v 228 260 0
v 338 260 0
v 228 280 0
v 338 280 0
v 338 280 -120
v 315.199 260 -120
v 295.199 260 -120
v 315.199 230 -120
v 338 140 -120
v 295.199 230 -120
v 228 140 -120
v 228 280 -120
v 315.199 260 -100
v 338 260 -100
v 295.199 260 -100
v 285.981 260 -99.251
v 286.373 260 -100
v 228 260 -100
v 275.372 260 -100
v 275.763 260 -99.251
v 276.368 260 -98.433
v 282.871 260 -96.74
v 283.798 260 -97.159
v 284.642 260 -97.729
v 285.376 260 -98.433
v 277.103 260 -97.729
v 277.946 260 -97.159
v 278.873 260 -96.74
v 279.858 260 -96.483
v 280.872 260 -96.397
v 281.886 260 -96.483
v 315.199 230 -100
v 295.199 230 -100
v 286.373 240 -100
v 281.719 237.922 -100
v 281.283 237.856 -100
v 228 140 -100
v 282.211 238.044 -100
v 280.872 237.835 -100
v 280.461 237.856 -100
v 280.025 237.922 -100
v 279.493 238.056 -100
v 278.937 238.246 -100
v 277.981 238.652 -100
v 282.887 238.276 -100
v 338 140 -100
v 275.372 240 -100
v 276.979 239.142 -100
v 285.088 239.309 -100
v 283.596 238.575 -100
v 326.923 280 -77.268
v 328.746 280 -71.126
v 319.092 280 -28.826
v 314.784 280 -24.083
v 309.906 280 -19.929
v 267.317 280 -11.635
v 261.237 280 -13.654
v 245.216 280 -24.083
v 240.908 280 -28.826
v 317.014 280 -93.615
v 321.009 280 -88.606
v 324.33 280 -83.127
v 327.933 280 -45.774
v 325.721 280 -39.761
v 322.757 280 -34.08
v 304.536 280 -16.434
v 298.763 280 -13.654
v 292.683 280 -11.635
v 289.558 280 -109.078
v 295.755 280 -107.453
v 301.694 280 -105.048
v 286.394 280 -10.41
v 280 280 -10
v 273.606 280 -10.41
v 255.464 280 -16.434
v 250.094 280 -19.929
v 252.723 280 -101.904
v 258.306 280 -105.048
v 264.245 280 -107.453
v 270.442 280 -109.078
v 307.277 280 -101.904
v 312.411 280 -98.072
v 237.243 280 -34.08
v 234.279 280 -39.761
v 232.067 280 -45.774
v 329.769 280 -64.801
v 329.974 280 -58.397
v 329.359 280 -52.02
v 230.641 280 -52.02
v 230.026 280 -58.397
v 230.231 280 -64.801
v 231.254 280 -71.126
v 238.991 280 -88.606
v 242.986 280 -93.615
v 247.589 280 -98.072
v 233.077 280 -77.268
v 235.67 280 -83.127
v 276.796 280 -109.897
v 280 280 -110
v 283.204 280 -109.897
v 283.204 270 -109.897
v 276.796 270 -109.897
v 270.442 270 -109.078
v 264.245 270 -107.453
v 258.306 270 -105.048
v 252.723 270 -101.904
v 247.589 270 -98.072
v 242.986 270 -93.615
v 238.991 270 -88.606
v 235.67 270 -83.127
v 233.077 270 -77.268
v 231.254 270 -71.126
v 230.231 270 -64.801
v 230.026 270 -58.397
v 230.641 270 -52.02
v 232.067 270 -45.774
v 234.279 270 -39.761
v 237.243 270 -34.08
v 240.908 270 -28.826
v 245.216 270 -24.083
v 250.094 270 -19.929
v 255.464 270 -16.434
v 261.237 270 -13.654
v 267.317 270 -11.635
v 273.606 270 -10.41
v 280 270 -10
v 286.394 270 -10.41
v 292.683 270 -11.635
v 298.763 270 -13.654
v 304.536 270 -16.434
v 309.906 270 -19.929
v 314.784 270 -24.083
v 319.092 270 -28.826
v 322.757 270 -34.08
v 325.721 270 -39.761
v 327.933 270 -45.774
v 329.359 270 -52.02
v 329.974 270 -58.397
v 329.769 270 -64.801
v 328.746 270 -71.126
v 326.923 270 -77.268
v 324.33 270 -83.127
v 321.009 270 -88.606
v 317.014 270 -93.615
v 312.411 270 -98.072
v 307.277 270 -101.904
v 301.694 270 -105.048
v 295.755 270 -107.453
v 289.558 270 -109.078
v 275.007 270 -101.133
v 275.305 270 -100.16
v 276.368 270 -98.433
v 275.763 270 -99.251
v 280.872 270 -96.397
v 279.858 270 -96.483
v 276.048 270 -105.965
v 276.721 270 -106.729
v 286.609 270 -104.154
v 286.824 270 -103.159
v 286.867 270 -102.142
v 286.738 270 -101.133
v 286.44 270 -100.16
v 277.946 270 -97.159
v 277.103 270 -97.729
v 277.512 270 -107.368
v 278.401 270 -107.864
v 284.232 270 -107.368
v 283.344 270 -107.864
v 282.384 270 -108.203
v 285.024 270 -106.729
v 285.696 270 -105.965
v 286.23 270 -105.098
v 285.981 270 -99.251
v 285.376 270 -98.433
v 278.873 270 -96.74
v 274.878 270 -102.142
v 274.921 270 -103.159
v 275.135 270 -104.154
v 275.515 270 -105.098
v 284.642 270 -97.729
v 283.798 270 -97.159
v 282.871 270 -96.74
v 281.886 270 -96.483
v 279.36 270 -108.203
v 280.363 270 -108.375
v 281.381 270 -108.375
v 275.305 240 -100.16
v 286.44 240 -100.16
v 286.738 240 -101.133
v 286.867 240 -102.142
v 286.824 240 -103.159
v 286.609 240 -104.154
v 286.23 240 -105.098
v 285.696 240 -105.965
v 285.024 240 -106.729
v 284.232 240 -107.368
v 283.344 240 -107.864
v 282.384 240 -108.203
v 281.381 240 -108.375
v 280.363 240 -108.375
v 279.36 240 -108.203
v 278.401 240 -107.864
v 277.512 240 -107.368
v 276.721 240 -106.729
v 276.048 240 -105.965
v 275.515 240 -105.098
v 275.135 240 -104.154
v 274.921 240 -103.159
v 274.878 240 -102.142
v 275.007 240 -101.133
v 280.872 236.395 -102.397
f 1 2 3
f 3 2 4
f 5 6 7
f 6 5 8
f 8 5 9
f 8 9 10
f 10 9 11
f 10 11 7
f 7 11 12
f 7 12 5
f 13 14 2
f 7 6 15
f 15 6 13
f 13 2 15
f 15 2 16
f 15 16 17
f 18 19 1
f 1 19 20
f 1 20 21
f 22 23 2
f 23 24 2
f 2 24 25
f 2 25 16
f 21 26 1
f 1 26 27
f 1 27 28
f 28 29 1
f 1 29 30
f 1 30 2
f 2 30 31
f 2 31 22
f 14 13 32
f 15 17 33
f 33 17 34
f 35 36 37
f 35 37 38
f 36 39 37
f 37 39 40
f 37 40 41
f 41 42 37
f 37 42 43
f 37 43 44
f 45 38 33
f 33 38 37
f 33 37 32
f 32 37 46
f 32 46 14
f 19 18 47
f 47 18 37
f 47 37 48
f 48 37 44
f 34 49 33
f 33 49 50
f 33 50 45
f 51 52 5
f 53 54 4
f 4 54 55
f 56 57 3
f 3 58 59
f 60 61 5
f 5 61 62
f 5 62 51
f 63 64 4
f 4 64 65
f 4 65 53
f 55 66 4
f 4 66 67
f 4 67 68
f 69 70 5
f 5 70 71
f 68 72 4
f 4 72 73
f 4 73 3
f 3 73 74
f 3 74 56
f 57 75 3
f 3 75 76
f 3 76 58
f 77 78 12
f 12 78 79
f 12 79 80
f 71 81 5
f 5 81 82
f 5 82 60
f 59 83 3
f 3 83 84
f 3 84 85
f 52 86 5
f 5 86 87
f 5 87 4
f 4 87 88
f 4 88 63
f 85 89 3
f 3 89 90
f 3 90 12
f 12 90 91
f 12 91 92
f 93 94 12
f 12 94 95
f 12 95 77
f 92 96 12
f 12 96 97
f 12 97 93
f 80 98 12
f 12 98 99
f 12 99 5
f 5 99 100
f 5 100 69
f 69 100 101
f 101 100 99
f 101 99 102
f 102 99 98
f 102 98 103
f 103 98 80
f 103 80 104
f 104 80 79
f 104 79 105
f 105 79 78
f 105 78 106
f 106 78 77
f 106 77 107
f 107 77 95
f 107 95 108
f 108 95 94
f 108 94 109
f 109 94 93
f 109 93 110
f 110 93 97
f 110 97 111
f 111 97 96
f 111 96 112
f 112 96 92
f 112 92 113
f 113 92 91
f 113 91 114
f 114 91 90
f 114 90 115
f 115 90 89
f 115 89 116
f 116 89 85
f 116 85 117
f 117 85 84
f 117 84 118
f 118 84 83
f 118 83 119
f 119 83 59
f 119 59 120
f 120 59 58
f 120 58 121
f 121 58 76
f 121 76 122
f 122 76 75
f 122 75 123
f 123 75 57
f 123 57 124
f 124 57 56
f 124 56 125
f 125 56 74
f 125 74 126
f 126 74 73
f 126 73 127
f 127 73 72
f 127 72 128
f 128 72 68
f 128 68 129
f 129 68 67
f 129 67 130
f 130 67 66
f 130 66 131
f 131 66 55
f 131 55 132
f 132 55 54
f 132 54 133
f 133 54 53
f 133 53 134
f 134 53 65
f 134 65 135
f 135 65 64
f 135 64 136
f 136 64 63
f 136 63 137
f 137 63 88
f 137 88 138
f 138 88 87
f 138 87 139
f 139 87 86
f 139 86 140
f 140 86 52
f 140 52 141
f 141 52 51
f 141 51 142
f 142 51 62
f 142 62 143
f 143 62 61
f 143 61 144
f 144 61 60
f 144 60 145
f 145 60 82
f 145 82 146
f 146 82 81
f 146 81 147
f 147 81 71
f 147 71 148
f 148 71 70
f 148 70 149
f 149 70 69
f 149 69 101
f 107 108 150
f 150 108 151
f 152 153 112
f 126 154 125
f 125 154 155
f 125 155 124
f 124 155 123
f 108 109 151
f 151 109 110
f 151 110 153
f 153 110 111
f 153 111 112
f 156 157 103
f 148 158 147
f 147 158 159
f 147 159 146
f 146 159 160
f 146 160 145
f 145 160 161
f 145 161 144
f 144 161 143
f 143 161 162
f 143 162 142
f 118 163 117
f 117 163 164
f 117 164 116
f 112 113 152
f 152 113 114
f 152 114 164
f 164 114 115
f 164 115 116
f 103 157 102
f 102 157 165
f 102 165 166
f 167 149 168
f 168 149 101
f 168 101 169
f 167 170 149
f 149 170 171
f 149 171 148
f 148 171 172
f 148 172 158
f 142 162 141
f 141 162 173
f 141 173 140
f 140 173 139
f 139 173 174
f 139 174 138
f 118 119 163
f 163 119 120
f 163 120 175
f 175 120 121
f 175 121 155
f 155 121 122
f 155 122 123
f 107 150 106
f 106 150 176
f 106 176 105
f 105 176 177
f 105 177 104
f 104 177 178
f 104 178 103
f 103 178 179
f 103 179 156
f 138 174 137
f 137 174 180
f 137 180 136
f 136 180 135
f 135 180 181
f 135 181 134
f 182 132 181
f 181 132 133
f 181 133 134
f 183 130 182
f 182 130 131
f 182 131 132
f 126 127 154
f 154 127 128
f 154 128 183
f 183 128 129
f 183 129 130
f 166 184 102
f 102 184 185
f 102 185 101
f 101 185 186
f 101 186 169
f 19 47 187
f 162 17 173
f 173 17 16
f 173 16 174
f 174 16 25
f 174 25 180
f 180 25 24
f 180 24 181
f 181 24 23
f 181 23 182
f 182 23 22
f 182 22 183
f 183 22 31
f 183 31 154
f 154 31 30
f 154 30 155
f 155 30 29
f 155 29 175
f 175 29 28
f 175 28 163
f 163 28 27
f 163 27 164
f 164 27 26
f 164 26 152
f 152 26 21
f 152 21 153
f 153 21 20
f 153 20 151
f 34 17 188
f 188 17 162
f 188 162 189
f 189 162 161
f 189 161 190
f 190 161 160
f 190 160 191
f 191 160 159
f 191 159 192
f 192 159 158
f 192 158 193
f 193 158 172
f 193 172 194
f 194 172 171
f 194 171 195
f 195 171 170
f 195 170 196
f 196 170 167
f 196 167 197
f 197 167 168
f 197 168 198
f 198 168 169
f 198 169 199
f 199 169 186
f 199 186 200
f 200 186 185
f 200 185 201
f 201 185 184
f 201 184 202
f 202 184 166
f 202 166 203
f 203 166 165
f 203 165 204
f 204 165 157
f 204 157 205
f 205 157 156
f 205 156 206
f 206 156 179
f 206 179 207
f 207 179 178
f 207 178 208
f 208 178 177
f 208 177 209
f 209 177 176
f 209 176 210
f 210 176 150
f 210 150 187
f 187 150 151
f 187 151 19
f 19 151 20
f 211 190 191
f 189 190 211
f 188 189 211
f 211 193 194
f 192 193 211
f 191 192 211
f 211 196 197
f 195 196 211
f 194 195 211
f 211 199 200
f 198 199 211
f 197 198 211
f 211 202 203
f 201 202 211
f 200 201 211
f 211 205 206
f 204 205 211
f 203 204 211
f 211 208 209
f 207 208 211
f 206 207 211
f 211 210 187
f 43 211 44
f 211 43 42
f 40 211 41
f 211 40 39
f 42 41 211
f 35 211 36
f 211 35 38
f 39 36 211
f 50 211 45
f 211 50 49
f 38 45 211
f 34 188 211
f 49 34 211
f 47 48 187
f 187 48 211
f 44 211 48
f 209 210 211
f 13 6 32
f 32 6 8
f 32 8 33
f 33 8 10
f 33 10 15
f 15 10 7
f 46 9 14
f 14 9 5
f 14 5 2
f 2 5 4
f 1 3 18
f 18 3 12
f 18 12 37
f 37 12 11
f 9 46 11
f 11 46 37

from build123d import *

# Parameters (mm, degrees)
SKETCH1_W                      = 670
SKETCH1_H                      = 120
BOSS_EXTRUDE1_DEPTH            = 530
SKETCH2_W                      = 100
SKETCH2_H                      = 200
SKETCH2_W_2                    = 650
SKETCH2_H_2                    = 250
CUT_EXTRUDE1_DEPTH             = 100
SKETCH3_R                      = 50
CUT_EXTRUDE2_DEPTH             = 260
F_12_0_12_DIAMETER_HOLE2_D     = 12
F_12_0_12_DIAMETER_HOLE2_DEPTH = 30
F_12_0_12_DIAMETER_HOLE2_TIP   = 3.605163714
SKETCH8_W                      = 650
SKETCH8_H                      = 50
BOSS_EXTRUDE2_DEPTH            = 5
SKETCH9_W                      = 10
SKETCH9_H                      = 250
CUT_EXTRUDE3_DEPTH             = 717
CUT_EXTRUDE4_DEPTH             = 5
SKETCH11_W                     = 10
SKETCH11_H                     = 100
BOSS_EXTRUDE3_DEPTH            = 78
BOSS_EXTRUDE3_2_DEPTH          = 78
BOSS_EXTRUDE3_3_DEPTH          = 78
SKETCH12_W                     = 20
SKETCH12_H                     = 30
CUT_EXTRUDE5_DEPTH             = 80
SKETCH15_W                     = 30
SKETCH15_H                     = 23.536156656
SKETCH15_H_2                   = 28.986603691
CUT_EXTRUDE7_DEPTH             = 35
SHELL1_T                       = -3
SKETCH16_W                     = 14
SKETCH16_H                     = 14
CUT_EXTRUDE8_DEPTH             = 35
SKETCH17_W                     = 5.729882812
SKETCH17_H                     = 17.428393554
SKETCH17_W_2                   = 13.369726562
SKETCH17_H_2                   = 3.342431641
BOSS_EXTRUDE4_DEPTH            = 5
CUT_EXTRUDE10_DEPTH            = 863.670273187
CUT_EXTRUDE10_DEPTH_BACK       = 863.670273187
SKETCH18_W                     = 670
SKETCH18_H                     = 250
CUT_EXTRUDE13_DEPTH            = 737.002717386
CUT_EXTRUDE13_DEPTH_BACK       = 737.002717386
SKETCH19_W                     = 228
SKETCH19_H                     = 280
SKETCH19_W_2                   = 332
CUT_EXTRUDE14_DEPTH            = 451.159971566
CUT_EXTRUDE14_DEPTH_BACK       = 451.159971566
SKETCH20_W                     = 110
SKETCH20_H                     = 140


with BuildPart() as part:
    # Sketch1 → Boss-Extrude1 (new body)
    with BuildSketch(Plane(origin=(0, 0, 0), x_dir=(1, 0, 0), z_dir=(0, 1, 0))):
        with Locations((335, 60)):
            Rectangle(SKETCH1_W, SKETCH1_H)
    extrude(amount=BOSS_EXTRUDE1_DEPTH)

    # Sketch2 → Cut-Extrude1 (cut)
    with BuildSketch(Plane.XY):
        with Locations((60, 380)):
            Rectangle(SKETCH2_W, SKETCH2_H)
        with Locations((170, 380)):
            Rectangle(SKETCH2_W, SKETCH2_H)
        with Locations((280, 380)):
            Rectangle(SKETCH2_W, SKETCH2_H)
        with Locations((390, 380)):
            Rectangle(SKETCH2_W, SKETCH2_H)
        with Locations((500, 380)):
            Rectangle(SKETCH2_W, SKETCH2_H)
        with Locations((610, 380)):
            Rectangle(SKETCH2_W, SKETCH2_H)
        with Locations((335, 135)):
            Rectangle(SKETCH2_W_2, SKETCH2_H_2)
    extrude(amount=-CUT_EXTRUDE1_DEPTH, mode=Mode.SUBTRACT)

    # Sketch3 → Cut-Extrude2 (cut)
    with BuildSketch(Plane(origin=(0, 530, 0), x_dir=(1, 0, 0), z_dir=(0, 1, 0))):
        with Locations((60, 60)):
            Circle(SKETCH3_R)
        with Locations((170, 60)):
            Circle(SKETCH3_R)
        with Locations((280, 60)):
            Circle(SKETCH3_R)
        with Locations((390, 60)):
            Circle(SKETCH3_R)
        with Locations((500, 60)):
            Circle(SKETCH3_R)
        with Locations((610, 60)):
            Circle(SKETCH3_R)
    extrude(amount=-CUT_EXTRUDE2_DEPTH, mode=Mode.SUBTRACT)

    # Ø12.0 (12) Diameter Hole2
    with Locations(Plane(origin=(59.704642413, 270, -102.411697903), x_dir=(0, 0, 1), z_dir=(0, 1, 0))):
        with Locations((0, 0), (-0.195888006, 111.8520513), (0.014838595, 221.167624818), (-0.341843303, 331.364008353), (0.657723149, 441.008646429), (1.288998006, 549.811854685)):
            Hole(F_12_0_12_DIAMETER_HOLE2_D / 2, depth=F_12_0_12_DIAMETER_HOLE2_DEPTH)
            with Locations((0, 0, -(F_12_0_12_DIAMETER_HOLE2_DEPTH + F_12_0_12_DIAMETER_HOLE2_TIP / 2))):  # 118° drill point
                Cone(0, F_12_0_12_DIAMETER_HOLE2_D / 2, F_12_0_12_DIAMETER_HOLE2_TIP, mode=Mode.SUBTRACT)

    # Sketch8 → Boss-Extrude2 (add)
    with BuildSketch(Plane.XY):
        with Locations((335, 305)):
            Rectangle(SKETCH8_W, SKETCH8_H)
    extrude(amount=-BOSS_EXTRUDE2_DEPTH)

    # Sketch9 → Cut-Extrude3 (cut)
    with BuildSketch(Plane(origin=(670, 0, 0), x_dir=(0, 0, -1), z_dir=(1, 0, 0))):
        with Locations((15, 135)):
            Rectangle(SKETCH9_W, SKETCH9_H)
    extrude(amount=-CUT_EXTRUDE3_DEPTH, mode=Mode.SUBTRACT)

    # Sketch10 → Cut-Extrude4 (cut)
    with BuildSketch(Plane(origin=(0, 10, 0), x_dir=(1, 0, 0), z_dir=(0, 1, 0))):
        Polygon((365, 61.943560596), (350, 87.924322709), (320, 87.924322709), (305, 61.943560596), (320, 35.962798482), (350, 35.962798482), align=None)
    extrude(amount=-CUT_EXTRUDE4_DEPTH, mode=Mode.SUBTRACT)

    # Sketch12 → Cut-Extrude5 (cut)
    with BuildSketch(Plane.XY.offset(-100)):
        with Locations((85.198613037, 245)):
            Rectangle(SKETCH12_W, SKETCH12_H)
        with Locations((195.198613037, 245)):
            Rectangle(SKETCH12_W, SKETCH12_H)
        with Locations((305.198613037, 245)):
            Rectangle(SKETCH12_W, SKETCH12_H)
        with Locations((415.198613037, 245)):
            Rectangle(SKETCH12_W, SKETCH12_H)
        with Locations((525.198613037, 245)):
            Rectangle(SKETCH12_W, SKETCH12_H)
        with Locations((635.198613037, 245)):
            Rectangle(SKETCH12_W, SKETCH12_H)
    extrude(amount=-CUT_EXTRUDE5_DEPTH, mode=Mode.SUBTRACT)

    # Sketch17 → Boss-Extrude4 (add)
    # profile 1 of 9: a face of its own
    with BuildSketch(Plane.XY):
        with BuildLine():
            Line((527.508830928, 289.835452458), (527.508830928, 307.263846012))
            Line((527.508830928, 307.263846012), (534.861434459, 307.263846012))
            add(Edge.make_bspline(
                [(534.861434459, 307.263846012), (535.181337774, 307.258256848), (535.803061116, 307.24739446), (536.703508491, 307.139069344), (537.544992916, 306.975202489), (538.325061607, 306.737496792), (539.040841948, 306.426020155), (539.698044515, 306.051894954), (540.290333057, 305.605079277), (540.822348212, 305.090232636), (541.284521701, 304.502523111), (541.692171296, 303.852565801), (542.030284458, 303.129762281), (542.309377095, 302.341316546), (542.5243908, 301.484161689), (542.679660381, 300.560045938), (542.773357357, 299.567500804), (542.783368073, 298.883107022), (542.788518428, 298.530997273)],
                knots=[0, 0, 0, 0, 1.135059408, 2.20595691, 3.214417064, 4.174978569, 5.094187092, 5.980001006, 6.853065862, 7.720814779, 8.600404634, 9.50058483, 10.438414914, 11.426825708, 12.465239141, 13.571113463, 14.750376389, 16, 16, 16, 16], degree=3))
            add(Edge.make_bspline(
                [(542.788518428, 298.530997273), (542.781740751, 298.180151665), (542.768592871, 297.499553336), (542.676885992, 296.511518461), (542.516733301, 295.591080531), (542.296748778, 294.736450427), (542.003051046, 293.953120444), (541.654236167, 293.233205539), (541.233025793, 292.585291498), (540.753136904, 292.000029304), (540.204772188, 291.484681411), (539.587651059, 291.044279297), (538.910779309, 290.668464036), (538.169670382, 290.361903209), (537.364073889, 290.124869172), (536.495133477, 289.954199984), (535.562644449, 289.853487388), (534.920131033, 289.841584621), (534.58911581, 289.835452458)],
                knots=[0, 0, 0, 0, 1.228418252, 2.382983832, 3.470276728, 4.496757894, 5.468023682, 6.394867725, 7.292157164, 8.167372942, 9.039072913, 9.918728341, 10.815246345, 11.744296628, 12.720973084, 13.750736166, 14.841206188, 16, 16, 16, 16], degree=3))
            Line((534.58911581, 289.835452458), (527.508830928, 289.835452458))
        make_face()
        with BuildLine():
            Line((533.238713741, 291.745413395), (534.048208904, 291.745413395))
            add(Edge.make_bspline(
                [(534.048208904, 291.745413395), (534.172894012, 291.749291978), (534.413033311, 291.756761998), (534.758676231, 291.825976613), (535.075745017, 291.938271137), (535.365749176, 292.094802589), (535.623404602, 292.300450923), (535.848862806, 292.551404902), (536.04776914, 292.844737637), (536.217685755, 293.190205032), (536.364284647, 293.596533622), (536.481764702, 294.076367921), (536.592118304, 294.630928744), (536.673672739, 295.265507643), (536.740044562, 295.978448886), (536.788346679, 296.768428292), (536.812018936, 297.636801208), (536.817188964, 298.241258393), (536.819890499, 298.55711002)],
                knots=[0, 0, 0, 0, 0.728710832, 1.403472396, 2.052289494, 2.690292559, 3.321919393, 3.970736491, 4.656696891, 5.388631723, 6.217040872, 7.17856157, 8.275589967, 9.523440737, 10.918935818, 12.463926104, 14.152268318, 16, 16, 16, 16], degree=3))
            add(Edge.make_bspline(
                [(536.819890499, 298.55711002), (536.8171426, 298.871715251), (536.811863063, 299.476166083), (536.7886758, 300.343334385), (536.739579947, 301.133216935), (536.674703848, 301.843934916), (536.589660404, 302.476324031), (536.488366458, 303.031681737), (536.362441588, 303.507627045), (536.222158727, 303.914921549), (536.050140993, 304.256514038), (535.858357073, 304.554097881), (535.62547107, 304.79746827), (535.36991257, 305.004888479), (535.079348843, 305.160875844), (534.761320266, 305.273944358), (534.414185903, 305.34216807), (534.172870641, 305.349893944), (534.048208904, 305.353885075)],
                knots=[0, 0, 0, 0, 1.842836665, 3.540640921, 5.080358154, 6.47765669, 7.719902824, 8.816971715, 9.781579111, 10.601733135, 11.334613876, 12.017393917, 12.666641099, 13.29908421, 13.937911793, 14.587567384, 15.270347425, 16, 16, 16, 16], degree=3))
            Line((534.048208904, 305.353885075), (533.238713741, 305.353885075))
            Line((533.238713741, 305.353885075), (533.238713741, 291.745413395))
        make_face(mode=Mode.SUBTRACT)
    # profile 2 of 9: a face of its own
    with BuildSketch(Plane.XY):
        with Locations((547.563420772, 298.549649235)):
            Rectangle(SKETCH17_W, SKETCH17_H)
    # profile 3 of 9: a face of its own
    with BuildSketch(Plane.XY):
        Polygon((564.514324092, 307.263846012), (564.514324092, 305.115139958), (558.545696163, 305.115139958), (558.545696163, 299.862747379), (563.559343624, 299.862747379), (563.559343624, 297.714041325), (558.545696163, 297.714041325), (558.545696163, 289.835452458), (552.81581335, 289.835452458), (552.81581335, 307.263846012), align=None)
    # profile 4 of 9: a face of its own
    with BuildSketch(Plane.XY):
        Polygon((577.645305538, 307.263846012), (577.645305538, 305.115139958), (571.676677608, 305.115139958), (571.676677608, 299.862747379), (576.690325069, 299.862747379), (576.690325069, 297.714041325), (571.676677608, 297.714041325), (571.676677608, 289.835452458), (565.946794795, 289.835452458), (565.946794795, 307.263846012), align=None)
    # profile 5 of 9: a face of its own
    with BuildSketch(Plane.XY):
        with Locations((584.330168819, 287.448001286)):
            Rectangle(SKETCH17_W_2, SKETCH17_H_2)
    # profile 6 of 9: a face of its own
    with BuildSketch(Plane.XY):
        with BuildLine():
            Line((605.578484249, 307.263846012), (605.578484249, 295.602639195))
            add(Edge.make_bspline(
                [(605.578484249, 295.602639195), (605.574209777, 295.35989389), (605.565919345, 294.889083964), (605.480877158, 294.20653885), (605.349958188, 293.569747554), (605.15926554, 292.978838165), (604.911867049, 292.436847071), (604.616163877, 291.936663973), (604.260702644, 291.487723021), (603.847299908, 291.08966617), (603.386881991, 290.731670113), (602.867295001, 290.425440037), (602.293741958, 290.168488385), (601.66690529, 289.960990771), (600.988052682, 289.797299786), (600.254912883, 289.679078851), (599.467035781, 289.60781007), (598.923618241, 289.60048219), (598.643684673, 289.59670734)],
                knots=[0, 0, 0, 0, 1.108173197, 2.149326602, 3.136215123, 4.073726706, 4.978516626, 5.852185058, 6.72141202, 7.584905625, 8.467554395, 9.379216169, 10.332422268, 11.332766067, 12.390653242, 13.518530507, 14.721707419, 16, 16, 16, 16], degree=3))
            add(Edge.make_bspline(
                [(598.643684673, 289.59670734), (598.373688491, 289.600411437), (597.851346557, 289.607577482), (597.093280473, 289.679448684), (596.387523889, 289.797736542), (595.733050135, 289.960122315), (595.130189942, 290.169220301), (594.579048171, 290.42623041), (594.078350789, 290.732835498), (593.633858028, 291.090104794), (593.234289459, 291.486851767), (592.899913678, 291.940746827), (592.609043638, 292.435866034), (592.375223767, 292.980322997), (592.191754821, 293.570441519), (592.063541006, 294.20666921), (591.983676196, 294.889343196), (591.974661767, 295.359932437), (591.970012569, 295.602639195)],
                knots=[0, 0, 0, 0, 1.258901956, 2.435505865, 3.547148904, 4.59359074, 5.576649289, 6.5183682, 7.424469602, 8.307507093, 9.172751023, 10.042627298, 10.928839176, 11.845659241, 12.799442865, 13.80597989, 14.868432463, 16, 16, 16, 16], degree=3))
            Line((591.970012569, 295.602639195), (591.970012569, 307.263846012))
            Line((591.970012569, 307.263846012), (597.699895381, 307.263846012))
            Line((597.699895381, 307.263846012), (597.699895381, 295.457153889))
            add(Edge.make_bspline(
                [(597.699895381, 295.457153889), (597.700816195, 295.287996189), (597.702584578, 294.963135903), (597.729908723, 294.499051493), (597.768241004, 294.079064133), (597.828226169, 293.705517832), (597.90066041, 293.377063412), (597.989882091, 293.09281535), (598.094998068, 292.852496478), (598.225239063, 292.654232043), (598.380826623, 292.495135011), (598.55368342, 292.353231761), (598.757556996, 292.238543846), (598.987648905, 292.146224908), (599.243380948, 292.070549638), (599.526120553, 292.020376099), (599.83553351, 291.990763905), (600.049971942, 291.986424568), (600.161954402, 291.984158512)],
                knots=[0, 0, 0, 0, 1.622370975, 3.115695595, 4.458049099, 5.666011203, 6.742434742, 7.681714947, 8.519814998, 9.250928664, 9.942747364, 10.646898194, 11.389596108, 12.175933929, 13.021386247, 13.943159715, 14.925891993, 16, 16, 16, 16], degree=3))
            add(Edge.make_bspline(
                [(600.161954402, 291.984158512), (600.283927219, 291.987190593), (600.521124756, 291.993087005), (600.86597014, 292.03390861), (601.187714881, 292.103380086), (601.484890424, 292.205377303), (601.758665297, 292.332852529), (602.012761516, 292.484567923), (602.236391413, 292.674631152), (602.439076761, 292.888441291), (602.620738276, 293.128529789), (602.771757722, 293.399928575), (602.905501548, 293.697121508), (603.005823683, 294.025060118), (603.089837826, 294.379999499), (603.146989706, 294.763086929), (603.186210275, 295.174074524), (603.189394751, 295.457053988), (603.191033077, 295.602639195)],
                knots=[0, 0, 0, 0, 1.083870311, 2.107775948, 3.08105344, 4.003637981, 4.893545291, 5.761570557, 6.624657808, 7.49233129, 8.376387281, 9.291996285, 10.246843261, 11.267344133, 12.334180325, 13.486053461, 14.706643157, 16, 16, 16, 16], degree=3))
            Line((603.191033077, 295.602639195), (603.191033077, 307.263846012))
            Line((603.191033077, 307.263846012), (605.578484249, 307.263846012))
        make_face()
    # profile 7 of 9: a face of its own
    with BuildSketch(Plane.XY):
        with BuildLine():
            Line((619.731593227, 302.015183827), (616.739818477, 301.526502415))
            add(Edge.make_bspline(
                [(616.739818477, 301.526502415), (616.748849224, 301.670726223), (616.765660669, 301.939210177), (616.78429066, 302.312269209), (616.796668381, 302.625642376), (616.798628236, 302.814722915), (616.799504756, 302.899286839)],
                knots=[0, 0, 0, 0, 1.261802504, 2.348944521, 3.261585937, 4, 4, 4, 4], degree=3))
            add(Edge.make_bspline(
                [(616.799504756, 302.899286839), (616.798306068, 303.007660677), (616.795968139, 303.219033721), (616.750451916, 303.523894877), (616.694806916, 303.811547356), (616.604352699, 304.076787391), (616.488181329, 304.320314265), (616.348943917, 304.543955606), (616.184187178, 304.745078709), (615.995833421, 304.928129987), (615.778009957, 305.083200131), (615.536269472, 305.218702836), (615.269765326, 305.333844758), (614.978065514, 305.431346685), (614.660683072, 305.504624438), (614.319025281, 305.556776695), (613.952471696, 305.585673441), (613.699597795, 305.590260771), (613.568984889, 305.592630192)],
                knots=[0, 0, 0, 0, 1.079280541, 2.105035848, 3.067950317, 3.99715044, 4.889989748, 5.753421302, 6.617030865, 7.476358039, 8.364190572, 9.274590025, 10.235106994, 11.254473582, 12.337095886, 13.478601727, 14.697662529, 16, 16, 16, 16], degree=3))
            add(Edge.make_bspline(
                [(613.568984889, 305.592630192), (613.391954632, 305.58912286), (613.059112606, 305.582528579), (612.595688488, 305.495339748), (612.198743126, 305.361419257), (611.87165349, 305.163811893), (611.613188167, 304.909795747), (611.433841092, 304.593316589), (611.323009072, 304.224665915), (611.313400221, 303.959558324), (611.308367061, 303.820693775)],
                knots=[0, 0, 0, 0, 1.294917039, 2.43462794, 3.440028966, 4.347597256, 5.210608309, 6.06356377, 6.985685997, 8, 8, 8, 8], degree=3))
            add(Edge.make_bspline(
                [(611.308367061, 303.820693775), (611.317562032, 303.705133219), (611.336106628, 303.472068433), (611.47315858, 303.132808312), (611.695999602, 302.811560885), (612.009295906, 302.510664216), (612.404107796, 302.221967273), (612.884407504, 301.948533431), (613.450813789, 301.688189695), (613.862519081, 301.536023727), (614.080048656, 301.455624958)],
                knots=[0, 0, 0, 0, 0.716839541, 1.445735977, 2.240793036, 3.131329288, 4.131129903, 5.273471266, 6.559404876, 8, 8, 8, 8], degree=3))
            add(Edge.make_bspline(
                [(614.080048656, 301.455624958), (614.335934702, 301.364918412), (614.834564244, 301.188164095), (615.547657928, 300.88707802), (616.213068388, 300.5749594), (616.829579094, 300.246613346), (617.397833174, 299.90520698), (617.914851624, 299.544556457), (618.386199073, 299.173962102), (618.807001026, 298.783874588), (619.177995113, 298.378100064), (619.4958685, 297.952745357), (619.771807525, 297.51723103), (619.991113975, 297.061458502), (620.169645242, 296.594624218), (620.292698657, 296.11024444), (620.364288243, 295.609761088), (620.37516617, 295.270864226), (620.380681514, 295.099036213)],
                knots=[0, 0, 0, 0, 1.359488612, 2.649152603, 3.874964776, 5.039588756, 6.146130126, 7.193090393, 8.194917302, 9.146793662, 10.063845301, 10.944476293, 11.803344532, 12.641736646, 13.473440096, 14.302714936, 15.139439897, 16, 16, 16, 16], degree=3))
            add(Edge.make_bspline(
                [(620.380681514, 295.099036213), (620.374476075, 294.902306495), (620.362285176, 294.515820995), (620.280160209, 293.948630617), (620.138011896, 293.409496554), (619.938489338, 292.895972278), (619.681049879, 292.411946655), (619.366518754, 291.954381076), (618.996510229, 291.525099427), (618.5710008, 291.128381035), (618.102222518, 290.765302239), (617.587803957, 290.450854345), (617.034458515, 290.187092261), (616.444107988, 289.968993032), (615.81453624, 289.801373099), (615.145337453, 289.685291013), (614.438790193, 289.606619894), (613.954683001, 289.600062276), (613.70700941, 289.59670734)],
                knots=[0, 0, 0, 0, 0.972121714, 1.909782367, 2.824924061, 3.721832975, 4.62620438, 5.527836938, 6.46026819, 7.421000932, 8.398101015, 9.385579713, 10.394244048, 11.422703992, 12.491421888, 13.608778581, 14.776629625, 16, 16, 16, 16], degree=3))
            add(Edge.make_bspline(
                [(613.70700941, 289.59670734), (613.445745367, 289.599650312), (612.939893069, 289.605348413), (612.207608113, 289.66709241), (611.525297432, 289.760984454), (610.893395078, 289.899706116), (610.309273131, 290.072394336), (609.776099392, 290.288320955), (609.295310255, 290.547303481), (608.863217672, 290.843007892), (608.478306623, 291.175775461), (608.148120946, 291.551766865), (607.86942369, 291.967163224), (607.639947144, 292.421521488), (607.466477665, 292.917583541), (607.339164663, 293.449829748), (607.264537999, 294.021332449), (607.254747521, 294.414908557), (607.249700069, 294.617815586)],
                knots=[0, 0, 0, 0, 1.342201143, 2.598733168, 3.773451092, 4.878874364, 5.91991243, 6.900006476, 7.829142054, 8.72062616, 9.585588575, 10.436728592, 11.283829734, 12.149664931, 13.044964919, 13.977937424, 14.957531465, 16, 16, 16, 16], degree=3))
            add(Edge.make_bspline(
                [(607.249700069, 294.617815586), (607.250803815, 294.692425759), (607.253213998, 294.855347393), (607.260452266, 295.122772538), (607.275636683, 295.433682216), (607.29037174, 295.656130545), (607.298195171, 295.774237248)],
                knots=[0, 0, 0, 0, 0.773500207, 1.689044709, 2.77302154, 4, 4, 4, 4], degree=3))
            Line((607.298195171, 295.774237248), (610.36457777, 296.337526509))
            add(Edge.make_bspline(
                [(610.36457777, 296.337526509), (610.326952988, 296.136337493), (610.255606535, 295.754830366), (610.178678473, 295.21219969), (610.124206629, 294.733311493), (610.11767002, 294.435147371), (610.114641475, 294.297001835)],
                knots=[0, 0, 0, 0, 1.192988372, 2.262218769, 3.194850416, 4, 4, 4, 4], degree=3))
            add(Edge.make_bspline(
                [(610.114641475, 294.297001835), (610.116191817, 294.183708768), (610.119182568, 293.965156219), (610.159053378, 293.648552813), (610.215988606, 293.352999663), (610.302906772, 293.079707227), (610.411206928, 292.826307836), (610.544682453, 292.59538211), (610.704385489, 292.386485019), (610.887496571, 292.200099922), (611.094689168, 292.033628705), (611.327456494, 291.892756696), (611.58347653, 291.771733922), (611.864681562, 291.677479524), (612.167961721, 291.596080628), (612.497219749, 291.548235723), (612.849461228, 291.512043782), (613.092629543, 291.508500084), (613.218327999, 291.506668278)],
                knots=[0, 0, 0, 0, 1.135776692, 2.191015738, 3.19649269, 4.151244236, 5.061952528, 5.956281389, 6.819534407, 7.692823504, 8.571441916, 9.478554956, 10.416037156, 11.406231466, 12.450054172, 13.561596327, 14.739541482, 16, 16, 16, 16], degree=3))
            add(Edge.make_bspline(
                [(613.218327999, 291.506668278), (613.423996012, 291.510791273), (613.810619321, 291.518541853), (614.349272542, 291.616708407), (614.810575885, 291.768742445), (615.189785268, 291.991387532), (615.490778961, 292.278756613), (615.698005174, 292.637320004), (615.824813318, 293.05638326), (615.837728413, 293.355975238), (615.844524288, 293.513619419)],
                knots=[0, 0, 0, 0, 1.308765556, 2.460272085, 3.475015317, 4.388076298, 5.239673503, 6.095681635, 6.997954785, 8, 8, 8, 8], degree=3))
            add(Edge.make_bspline(
                [(615.844524288, 293.513619419), (615.833808824, 293.638242951), (615.811807312, 293.894126055), (615.644884004, 294.264515838), (615.382382362, 294.620631473), (615.016807277, 294.962984909), (614.551376589, 295.293471235), (613.986957743, 295.616730224), (613.322148235, 295.933112033), (612.83677959, 296.119639164), (612.580430889, 296.21815395)],
                knots=[0, 0, 0, 0, 0.667930748, 1.371427933, 2.146459016, 3.034714139, 4.04893387, 5.207327294, 6.525042705, 8, 8, 8, 8], degree=3))
            add(Edge.make_bspline(
                [(612.580430889, 296.21815395), (612.374354345, 296.29679374), (611.970646869, 296.450850434), (611.394079385, 296.713586304), (610.853066711, 296.987016804), (610.357486361, 297.288235735), (609.896382561, 297.599610528), (609.477036946, 297.932256792), (609.09841673, 298.284556341), (608.758710772, 298.653375077), (608.457302107, 299.038989264), (608.199448649, 299.444659231), (607.977533299, 299.866789834), (607.798609588, 300.308107488), (607.65975715, 300.767821241), (607.559616231, 301.244439392), (607.497905054, 301.739995674), (607.491630423, 302.075933546), (607.488445186, 302.246468159)],
                knots=[0, 0, 0, 0, 1.249558333, 2.447906163, 3.58867143, 4.682264114, 5.731748367, 6.739728761, 7.711906036, 8.659384707, 9.578321416, 10.481344598, 11.379544271, 12.277135726, 13.175418307, 14.097160112, 15.034047388, 16, 16, 16, 16], degree=3))
            add(Edge.make_bspline(
                [(607.488445186, 302.246468159), (607.49282555, 302.439538736), (607.501402184, 302.817565692), (607.587451154, 303.36980586), (607.719291893, 303.894921371), (607.910558542, 304.389343064), (608.156192894, 304.852853762), (608.453187669, 305.288766511), (608.804241719, 305.697593471), (609.213503754, 306.066686531), (609.657214714, 306.407618241), (610.14376173, 306.697651931), (610.658716537, 306.950861947), (611.210636666, 307.148827868), (611.791820619, 307.313252612), (612.408080529, 307.421140415), (613.056315391, 307.490701612), (613.499160755, 307.498567824), (613.725661373, 307.502591129)],
                knots=[0, 0, 0, 0, 1.01033566, 1.978209831, 2.919499157, 3.840961976, 4.746855014, 5.660740114, 6.597989116, 7.56120833, 8.541877795, 9.523498025, 10.522416858, 11.542172371, 12.589598349, 13.681636521, 14.814234488, 16, 16, 16, 16], degree=3))
            add(Edge.make_bspline(
                [(613.725661373, 307.502591129), (613.968269855, 307.498219033), (614.438190994, 307.489750488), (615.120391152, 307.426787419), (615.755073228, 307.319142339), (616.345153155, 307.171557286), (616.887304575, 306.977590666), (617.384933999, 306.742393454), (617.834452216, 306.46201507), (618.236961315, 306.139451502), (618.593086714, 305.773322851), (618.897467704, 305.361641069), (619.158701245, 304.909408454), (619.366684143, 304.412232174), (619.529870326, 303.873247147), (619.649133834, 303.29158184), (619.720420497, 302.667301443), (619.72779778, 302.236712324), (619.731593227, 302.015183827)],
                knots=[0, 0, 0, 0, 1.248314423, 2.417925914, 3.521398822, 4.558068205, 5.543720209, 6.479599284, 7.385061127, 8.263440163, 9.127722873, 10.00561236, 10.891325273, 11.808802823, 12.772251995, 13.784947978, 14.860405143, 16, 16, 16, 16], degree=3))
        make_face()
    # profile 8 of 9: a face of its own
    with BuildSketch(Plane.XY):
        Polygon((633.989153194, 307.263846012), (633.989153194, 305.115139958), (628.020525264, 305.115139958), (628.020525264, 300.340237614), (633.034172725, 300.340237614), (633.034172725, 298.191531559), (628.020525264, 298.191531559), (628.020525264, 291.984158512), (634.944133663, 291.984158512), (634.944133663, 289.835452458), (622.290642452, 289.835452458), (622.290642452, 307.263846012), align=None)
    # profile 9 of 9: a face of its own
    with BuildSketch(Plane.XY):
        with BuildLine():
            Line((636.376604366, 289.835452458), (636.376604366, 307.263846012))
            Line((636.376604366, 307.263846012), (643.990335369, 307.263846012))
            add(Edge.make_bspline(
                [(643.990335369, 307.263846012), (644.237946498, 307.261150834), (644.721600887, 307.25588639), (645.426490561, 307.189203683), (646.094808274, 307.090496236), (646.724915796, 306.949857504), (647.317873659, 306.767252686), (647.871119087, 306.542146), (648.390701058, 306.282329135), (648.864494846, 305.976472528), (649.295093616, 305.642889252), (649.669668547, 305.279483604), (649.990389523, 304.894749072), (650.250664962, 304.483256345), (650.454275633, 304.048690948), (650.59581384, 303.587791605), (650.684089268, 303.104102537), (650.695510601, 302.772834174), (650.701311397, 302.604585835)],
                knots=[0, 0, 0, 0, 1.303269877, 2.545653735, 3.724355284, 4.8584284, 5.941462088, 6.987020715, 8.000098032, 8.995332524, 9.951400474, 10.863507538, 11.737823931, 12.582415999, 13.420128714, 14.25671499, 15.114600608, 16, 16, 16, 16], degree=3))
            add(Edge.make_bspline(
                [(650.701311397, 302.604585835), (650.698282873, 302.472674957), (650.692382063, 302.215658276), (650.651041486, 301.838684287), (650.580643818, 301.480313933), (650.481036683, 301.139915259), (650.347814833, 300.820175594), (650.191279492, 300.517863507), (650.009772227, 300.230553342), (649.788675198, 299.970497982), (649.548268341, 299.722842359), (649.274558803, 299.497116911), (648.974487035, 299.288655528), (648.642526299, 299.104010513), (648.287619671, 298.928055749), (647.899038177, 298.784921972), (647.486819978, 298.644749395), (647.19793098, 298.577036306), (647.049257183, 298.54218845)],
                knots=[0, 0, 0, 0, 1.057156483, 2.059775939, 3.035078039, 3.981068617, 4.897189472, 5.80650904, 6.70770952, 7.613691521, 8.536886357, 9.470937334, 10.45233069, 11.461024139, 12.51295332, 13.623444893, 14.776929983, 16, 16, 16, 16], degree=3))
            add(Edge.make_bspline(
                [(647.049257183, 298.54218845), (647.19164695, 298.499279419), (647.467865022, 298.416041346), (647.856360945, 298.265600017), (648.211652989, 298.111536308), (648.524185739, 297.936781388), (648.807636894, 297.762122504), (649.047122259, 297.564301324), (649.255235567, 297.361673563), (649.425188343, 297.135464734), (649.570253643, 296.882344437), (649.694827156, 296.586596707), (649.815179167, 296.247423665), (649.917667348, 295.859098311), (650.004750555, 295.423699276), (650.088222437, 294.944027189), (650.153853601, 294.416024546), (650.187587341, 294.048412906), (650.2051692, 293.856815525)],
                knots=[0, 0, 0, 0, 1.149282524, 2.229462177, 3.219229774, 4.139917433, 4.995948464, 5.788695735, 6.536448429, 7.236319808, 7.968460079, 8.78645307, 9.713791991, 10.749194692, 11.887975363, 13.146018663, 14.512518948, 16, 16, 16, 16], degree=3))
            add(Edge.make_bspline(
                [(650.2051692, 293.856815525), (650.225980287, 293.627849833), (650.265975604, 293.187817268), (650.348933081, 292.554613589), (650.44386163, 291.974357025), (650.555874504, 291.44528724), (650.681301216, 290.967898855), (650.821280597, 290.540469593), (650.979920039, 290.165788217), (651.10484481, 289.941461656), (651.163880062, 289.835452458)],
                knots=[0, 0, 0, 0, 1.324580516, 2.545615266, 3.678710841, 4.711533017, 5.660403917, 6.521349952, 7.301239649, 8, 8, 8, 8], degree=3))
            Line((651.163880062, 289.835452458), (645.213904094, 289.835452458))
            add(Edge.make_bspline(
                [(645.213904094, 289.835452458), (645.12229736, 290.069847279), (644.935171241, 290.548648246), (644.7595281, 291.319414791), (644.64846922, 292.142514735), (644.635117598, 292.70994511), (644.628232479, 293.002555653)],
                knots=[0, 0, 0, 0, 0.930410518, 1.900560147, 2.917368081, 4, 4, 4, 4], degree=3))
            Line((644.628232479, 293.002555653), (644.605850124, 294.002300831))
            Line((644.605850124, 294.002300831), (644.579737377, 295.266903874))
            add(Edge.make_bspline(
                [(644.579737377, 295.266903874), (644.573694669, 295.477395004), (644.562357007, 295.872330118), (644.469348432, 296.426164013), (644.30178735, 296.894645884), (644.073222546, 297.287223005), (643.766741442, 297.590613479), (643.39104803, 297.804152917), (642.950456912, 297.93396284), (642.634664848, 297.946292392), (642.468335247, 297.952786442)],
                knots=[0, 0, 0, 0, 1.295300309, 2.430314163, 3.439929415, 4.342995669, 5.203512789, 6.060756153, 6.978588463, 8, 8, 8, 8], degree=3))
            Line((642.468335247, 297.952786442), (642.106487178, 297.952786442))
            Line((642.106487178, 297.952786442), (642.106487178, 289.835452458))
            Line((642.106487178, 289.835452458), (636.376604366, 289.835452458))
        make_face()
        with BuildLine():
            Line((642.106487178, 299.862747379), (642.617550945, 299.862747379))
            add(Edge.make_bspline(
                [(642.617550945, 299.862747379), (642.722054451, 299.865172716), (642.925280724, 299.869889229), (643.220054897, 299.898289891), (643.494111408, 299.951809873), (643.749840966, 300.021017819), (643.984372137, 300.114851792), (644.200147241, 300.225818296), (644.391160406, 300.362685327), (644.565327067, 300.516342321), (644.718148635, 300.691986294), (644.850351299, 300.889034217), (644.961199162, 301.106225057), (645.056078491, 301.342818683), (645.125883912, 301.600830857), (645.173262731, 301.879472914), (645.203404658, 302.177423605), (645.207875435, 302.383174491), (645.210173702, 302.488943669)],
                knots=[0, 0, 0, 0, 1.184986479, 2.304423995, 3.352332712, 4.347714965, 5.303263624, 6.211353909, 7.091434645, 7.960150225, 8.839440182, 9.723126897, 10.64371617, 11.599264829, 12.608232147, 13.667459739, 14.800924404, 16, 16, 16, 16], degree=3))
            add(Edge.make_bspline(
                [(645.210173702, 302.488943669), (645.207875435, 302.594712847), (645.203404658, 302.800463732), (645.173262731, 303.098414423), (645.125883912, 303.37705648), (645.056078491, 303.635068654), (644.961199162, 303.87166228), (644.850351299, 304.08885312), (644.718148635, 304.285901043), (644.565327067, 304.461545017), (644.391160406, 304.61520201), (644.200147241, 304.752069041), (643.984372137, 304.863035546), (643.749840966, 304.956869518), (643.494111408, 305.026077464), (643.220054897, 305.079597446), (642.925280724, 305.107998108), (642.722054451, 305.112714621), (642.617550945, 305.115139958)],
                knots=[0, 0, 0, 0, 1.199075596, 2.332540261, 3.391767853, 4.400735171, 5.35628383, 6.276873103, 7.160559818, 8.039849775, 8.908565355, 9.788646091, 10.696736376, 11.652285035, 12.647667288, 13.695576005, 14.815013521, 16, 16, 16, 16], degree=3))
            Line((642.617550945, 305.115139958), (642.106487178, 305.115139958))
            Line((642.106487178, 305.115139958), (642.106487178, 299.862747379))
        make_face(mode=Mode.SUBTRACT)
    extrude(amount=BOSS_EXTRUDE4_DEPTH)

    # Sketch18 → Cut-Extrude10 (cut, two sides: drawn at the far end of the back side and taken through both)
    with BuildSketch(Plane.XY.offset(-CUT_EXTRUDE10_DEPTH_BACK)):
        with Locations((335, 405)):
            Rectangle(SKETCH18_W, SKETCH18_H)
    extrude(amount=CUT_EXTRUDE10_DEPTH + CUT_EXTRUDE10_DEPTH_BACK, mode=Mode.SUBTRACT)

    # Sketch19 → Cut-Extrude13 (cut, two sides: drawn at the far end of the back side and taken through both)
    with BuildSketch(Plane(origin=(0, 0, -120), x_dir=(-1, 0, 0), z_dir=(0, 0, -1)).offset(-CUT_EXTRUDE13_DEPTH_BACK)):
        with Locations((-114, 140)):
            Rectangle(SKETCH19_W, SKETCH19_H)
        with Locations((-504, 140)):
            Rectangle(SKETCH19_W_2, SKETCH19_H)
    extrude(amount=CUT_EXTRUDE13_DEPTH + CUT_EXTRUDE13_DEPTH_BACK, mode=Mode.SUBTRACT)

    # Sketch20 → Cut-Extrude14 (cut, two sides: drawn at the far end of the back side and taken through both)
    with BuildSketch(Plane.XY.offset(-100).offset(-CUT_EXTRUDE14_DEPTH_BACK)):
        with Locations((283, 70)):
            Rectangle(SKETCH20_W, SKETCH20_H)
    extrude(amount=CUT_EXTRUDE14_DEPTH + CUT_EXTRUDE14_DEPTH_BACK, mode=Mode.SUBTRACT)


with BuildPart() as body_2:
    # Sketch11 → Boss-Extrude3 (new body)
    with BuildSketch(Plane.XY.offset(-100)):
        with Locations((255, 60)):
            Rectangle(SKETCH11_W, SKETCH11_H)
    extrude(amount=BOSS_EXTRUDE3_DEPTH)


with BuildPart() as body_3:
    # Sketch11 → Boss-Extrude3 2 (new body)
    with BuildSketch(Plane.XY.offset(-100)):
        with Locations((415, 60)):
            Rectangle(SKETCH11_W, SKETCH11_H)
    extrude(amount=BOSS_EXTRUDE3_2_DEPTH)


with BuildPart() as body_4:
    # Sketch11 → Boss-Extrude3 3 (new body)
    with BuildSketch(Plane.XY.offset(-100)):
        Polygon((25, 198.45686471), (325, 145.558770497), (325, 122.01775856), (345, 122.01775856), (345, 145.558770497), (645, 198.45686471), align=None)
    extrude(amount=BOSS_EXTRUDE3_3_DEPTH)

    # Sketch15 → Cut-Extrude7 (cut)
    with BuildSketch(Plane(origin=(345, 0, 0), x_dir=(0, 0, -1), z_dir=(1, 0, 0))):
        with Locations((35, 133.231921672)):
            Rectangle(SKETCH15_W, SKETCH15_H)
        with Locations((85, 130.506698154)):
            Rectangle(SKETCH15_W, SKETCH15_H_2)
    extrude(amount=-CUT_EXTRUDE7_DEPTH, mode=Mode.SUBTRACT)

    # Shell1
    shell1_openings = [body_4.faces().sort_by_distance(p)[0] for p in [
        (335, 198.45686471, -61),
    ]]
    offset(amount=SHELL1_T, openings=shell1_openings, kind=Kind.INTERSECTION)

    # Sketch16 → Cut-Extrude8 (cut)
    with BuildSketch(Plane.XZ.offset(-122.01775856)):
        with Locations((335, -60)):
            Rectangle(SKETCH16_W, SKETCH16_H)
    extrude(amount=-CUT_EXTRUDE8_DEPTH, mode=Mode.SUBTRACT)


solid = part.part
